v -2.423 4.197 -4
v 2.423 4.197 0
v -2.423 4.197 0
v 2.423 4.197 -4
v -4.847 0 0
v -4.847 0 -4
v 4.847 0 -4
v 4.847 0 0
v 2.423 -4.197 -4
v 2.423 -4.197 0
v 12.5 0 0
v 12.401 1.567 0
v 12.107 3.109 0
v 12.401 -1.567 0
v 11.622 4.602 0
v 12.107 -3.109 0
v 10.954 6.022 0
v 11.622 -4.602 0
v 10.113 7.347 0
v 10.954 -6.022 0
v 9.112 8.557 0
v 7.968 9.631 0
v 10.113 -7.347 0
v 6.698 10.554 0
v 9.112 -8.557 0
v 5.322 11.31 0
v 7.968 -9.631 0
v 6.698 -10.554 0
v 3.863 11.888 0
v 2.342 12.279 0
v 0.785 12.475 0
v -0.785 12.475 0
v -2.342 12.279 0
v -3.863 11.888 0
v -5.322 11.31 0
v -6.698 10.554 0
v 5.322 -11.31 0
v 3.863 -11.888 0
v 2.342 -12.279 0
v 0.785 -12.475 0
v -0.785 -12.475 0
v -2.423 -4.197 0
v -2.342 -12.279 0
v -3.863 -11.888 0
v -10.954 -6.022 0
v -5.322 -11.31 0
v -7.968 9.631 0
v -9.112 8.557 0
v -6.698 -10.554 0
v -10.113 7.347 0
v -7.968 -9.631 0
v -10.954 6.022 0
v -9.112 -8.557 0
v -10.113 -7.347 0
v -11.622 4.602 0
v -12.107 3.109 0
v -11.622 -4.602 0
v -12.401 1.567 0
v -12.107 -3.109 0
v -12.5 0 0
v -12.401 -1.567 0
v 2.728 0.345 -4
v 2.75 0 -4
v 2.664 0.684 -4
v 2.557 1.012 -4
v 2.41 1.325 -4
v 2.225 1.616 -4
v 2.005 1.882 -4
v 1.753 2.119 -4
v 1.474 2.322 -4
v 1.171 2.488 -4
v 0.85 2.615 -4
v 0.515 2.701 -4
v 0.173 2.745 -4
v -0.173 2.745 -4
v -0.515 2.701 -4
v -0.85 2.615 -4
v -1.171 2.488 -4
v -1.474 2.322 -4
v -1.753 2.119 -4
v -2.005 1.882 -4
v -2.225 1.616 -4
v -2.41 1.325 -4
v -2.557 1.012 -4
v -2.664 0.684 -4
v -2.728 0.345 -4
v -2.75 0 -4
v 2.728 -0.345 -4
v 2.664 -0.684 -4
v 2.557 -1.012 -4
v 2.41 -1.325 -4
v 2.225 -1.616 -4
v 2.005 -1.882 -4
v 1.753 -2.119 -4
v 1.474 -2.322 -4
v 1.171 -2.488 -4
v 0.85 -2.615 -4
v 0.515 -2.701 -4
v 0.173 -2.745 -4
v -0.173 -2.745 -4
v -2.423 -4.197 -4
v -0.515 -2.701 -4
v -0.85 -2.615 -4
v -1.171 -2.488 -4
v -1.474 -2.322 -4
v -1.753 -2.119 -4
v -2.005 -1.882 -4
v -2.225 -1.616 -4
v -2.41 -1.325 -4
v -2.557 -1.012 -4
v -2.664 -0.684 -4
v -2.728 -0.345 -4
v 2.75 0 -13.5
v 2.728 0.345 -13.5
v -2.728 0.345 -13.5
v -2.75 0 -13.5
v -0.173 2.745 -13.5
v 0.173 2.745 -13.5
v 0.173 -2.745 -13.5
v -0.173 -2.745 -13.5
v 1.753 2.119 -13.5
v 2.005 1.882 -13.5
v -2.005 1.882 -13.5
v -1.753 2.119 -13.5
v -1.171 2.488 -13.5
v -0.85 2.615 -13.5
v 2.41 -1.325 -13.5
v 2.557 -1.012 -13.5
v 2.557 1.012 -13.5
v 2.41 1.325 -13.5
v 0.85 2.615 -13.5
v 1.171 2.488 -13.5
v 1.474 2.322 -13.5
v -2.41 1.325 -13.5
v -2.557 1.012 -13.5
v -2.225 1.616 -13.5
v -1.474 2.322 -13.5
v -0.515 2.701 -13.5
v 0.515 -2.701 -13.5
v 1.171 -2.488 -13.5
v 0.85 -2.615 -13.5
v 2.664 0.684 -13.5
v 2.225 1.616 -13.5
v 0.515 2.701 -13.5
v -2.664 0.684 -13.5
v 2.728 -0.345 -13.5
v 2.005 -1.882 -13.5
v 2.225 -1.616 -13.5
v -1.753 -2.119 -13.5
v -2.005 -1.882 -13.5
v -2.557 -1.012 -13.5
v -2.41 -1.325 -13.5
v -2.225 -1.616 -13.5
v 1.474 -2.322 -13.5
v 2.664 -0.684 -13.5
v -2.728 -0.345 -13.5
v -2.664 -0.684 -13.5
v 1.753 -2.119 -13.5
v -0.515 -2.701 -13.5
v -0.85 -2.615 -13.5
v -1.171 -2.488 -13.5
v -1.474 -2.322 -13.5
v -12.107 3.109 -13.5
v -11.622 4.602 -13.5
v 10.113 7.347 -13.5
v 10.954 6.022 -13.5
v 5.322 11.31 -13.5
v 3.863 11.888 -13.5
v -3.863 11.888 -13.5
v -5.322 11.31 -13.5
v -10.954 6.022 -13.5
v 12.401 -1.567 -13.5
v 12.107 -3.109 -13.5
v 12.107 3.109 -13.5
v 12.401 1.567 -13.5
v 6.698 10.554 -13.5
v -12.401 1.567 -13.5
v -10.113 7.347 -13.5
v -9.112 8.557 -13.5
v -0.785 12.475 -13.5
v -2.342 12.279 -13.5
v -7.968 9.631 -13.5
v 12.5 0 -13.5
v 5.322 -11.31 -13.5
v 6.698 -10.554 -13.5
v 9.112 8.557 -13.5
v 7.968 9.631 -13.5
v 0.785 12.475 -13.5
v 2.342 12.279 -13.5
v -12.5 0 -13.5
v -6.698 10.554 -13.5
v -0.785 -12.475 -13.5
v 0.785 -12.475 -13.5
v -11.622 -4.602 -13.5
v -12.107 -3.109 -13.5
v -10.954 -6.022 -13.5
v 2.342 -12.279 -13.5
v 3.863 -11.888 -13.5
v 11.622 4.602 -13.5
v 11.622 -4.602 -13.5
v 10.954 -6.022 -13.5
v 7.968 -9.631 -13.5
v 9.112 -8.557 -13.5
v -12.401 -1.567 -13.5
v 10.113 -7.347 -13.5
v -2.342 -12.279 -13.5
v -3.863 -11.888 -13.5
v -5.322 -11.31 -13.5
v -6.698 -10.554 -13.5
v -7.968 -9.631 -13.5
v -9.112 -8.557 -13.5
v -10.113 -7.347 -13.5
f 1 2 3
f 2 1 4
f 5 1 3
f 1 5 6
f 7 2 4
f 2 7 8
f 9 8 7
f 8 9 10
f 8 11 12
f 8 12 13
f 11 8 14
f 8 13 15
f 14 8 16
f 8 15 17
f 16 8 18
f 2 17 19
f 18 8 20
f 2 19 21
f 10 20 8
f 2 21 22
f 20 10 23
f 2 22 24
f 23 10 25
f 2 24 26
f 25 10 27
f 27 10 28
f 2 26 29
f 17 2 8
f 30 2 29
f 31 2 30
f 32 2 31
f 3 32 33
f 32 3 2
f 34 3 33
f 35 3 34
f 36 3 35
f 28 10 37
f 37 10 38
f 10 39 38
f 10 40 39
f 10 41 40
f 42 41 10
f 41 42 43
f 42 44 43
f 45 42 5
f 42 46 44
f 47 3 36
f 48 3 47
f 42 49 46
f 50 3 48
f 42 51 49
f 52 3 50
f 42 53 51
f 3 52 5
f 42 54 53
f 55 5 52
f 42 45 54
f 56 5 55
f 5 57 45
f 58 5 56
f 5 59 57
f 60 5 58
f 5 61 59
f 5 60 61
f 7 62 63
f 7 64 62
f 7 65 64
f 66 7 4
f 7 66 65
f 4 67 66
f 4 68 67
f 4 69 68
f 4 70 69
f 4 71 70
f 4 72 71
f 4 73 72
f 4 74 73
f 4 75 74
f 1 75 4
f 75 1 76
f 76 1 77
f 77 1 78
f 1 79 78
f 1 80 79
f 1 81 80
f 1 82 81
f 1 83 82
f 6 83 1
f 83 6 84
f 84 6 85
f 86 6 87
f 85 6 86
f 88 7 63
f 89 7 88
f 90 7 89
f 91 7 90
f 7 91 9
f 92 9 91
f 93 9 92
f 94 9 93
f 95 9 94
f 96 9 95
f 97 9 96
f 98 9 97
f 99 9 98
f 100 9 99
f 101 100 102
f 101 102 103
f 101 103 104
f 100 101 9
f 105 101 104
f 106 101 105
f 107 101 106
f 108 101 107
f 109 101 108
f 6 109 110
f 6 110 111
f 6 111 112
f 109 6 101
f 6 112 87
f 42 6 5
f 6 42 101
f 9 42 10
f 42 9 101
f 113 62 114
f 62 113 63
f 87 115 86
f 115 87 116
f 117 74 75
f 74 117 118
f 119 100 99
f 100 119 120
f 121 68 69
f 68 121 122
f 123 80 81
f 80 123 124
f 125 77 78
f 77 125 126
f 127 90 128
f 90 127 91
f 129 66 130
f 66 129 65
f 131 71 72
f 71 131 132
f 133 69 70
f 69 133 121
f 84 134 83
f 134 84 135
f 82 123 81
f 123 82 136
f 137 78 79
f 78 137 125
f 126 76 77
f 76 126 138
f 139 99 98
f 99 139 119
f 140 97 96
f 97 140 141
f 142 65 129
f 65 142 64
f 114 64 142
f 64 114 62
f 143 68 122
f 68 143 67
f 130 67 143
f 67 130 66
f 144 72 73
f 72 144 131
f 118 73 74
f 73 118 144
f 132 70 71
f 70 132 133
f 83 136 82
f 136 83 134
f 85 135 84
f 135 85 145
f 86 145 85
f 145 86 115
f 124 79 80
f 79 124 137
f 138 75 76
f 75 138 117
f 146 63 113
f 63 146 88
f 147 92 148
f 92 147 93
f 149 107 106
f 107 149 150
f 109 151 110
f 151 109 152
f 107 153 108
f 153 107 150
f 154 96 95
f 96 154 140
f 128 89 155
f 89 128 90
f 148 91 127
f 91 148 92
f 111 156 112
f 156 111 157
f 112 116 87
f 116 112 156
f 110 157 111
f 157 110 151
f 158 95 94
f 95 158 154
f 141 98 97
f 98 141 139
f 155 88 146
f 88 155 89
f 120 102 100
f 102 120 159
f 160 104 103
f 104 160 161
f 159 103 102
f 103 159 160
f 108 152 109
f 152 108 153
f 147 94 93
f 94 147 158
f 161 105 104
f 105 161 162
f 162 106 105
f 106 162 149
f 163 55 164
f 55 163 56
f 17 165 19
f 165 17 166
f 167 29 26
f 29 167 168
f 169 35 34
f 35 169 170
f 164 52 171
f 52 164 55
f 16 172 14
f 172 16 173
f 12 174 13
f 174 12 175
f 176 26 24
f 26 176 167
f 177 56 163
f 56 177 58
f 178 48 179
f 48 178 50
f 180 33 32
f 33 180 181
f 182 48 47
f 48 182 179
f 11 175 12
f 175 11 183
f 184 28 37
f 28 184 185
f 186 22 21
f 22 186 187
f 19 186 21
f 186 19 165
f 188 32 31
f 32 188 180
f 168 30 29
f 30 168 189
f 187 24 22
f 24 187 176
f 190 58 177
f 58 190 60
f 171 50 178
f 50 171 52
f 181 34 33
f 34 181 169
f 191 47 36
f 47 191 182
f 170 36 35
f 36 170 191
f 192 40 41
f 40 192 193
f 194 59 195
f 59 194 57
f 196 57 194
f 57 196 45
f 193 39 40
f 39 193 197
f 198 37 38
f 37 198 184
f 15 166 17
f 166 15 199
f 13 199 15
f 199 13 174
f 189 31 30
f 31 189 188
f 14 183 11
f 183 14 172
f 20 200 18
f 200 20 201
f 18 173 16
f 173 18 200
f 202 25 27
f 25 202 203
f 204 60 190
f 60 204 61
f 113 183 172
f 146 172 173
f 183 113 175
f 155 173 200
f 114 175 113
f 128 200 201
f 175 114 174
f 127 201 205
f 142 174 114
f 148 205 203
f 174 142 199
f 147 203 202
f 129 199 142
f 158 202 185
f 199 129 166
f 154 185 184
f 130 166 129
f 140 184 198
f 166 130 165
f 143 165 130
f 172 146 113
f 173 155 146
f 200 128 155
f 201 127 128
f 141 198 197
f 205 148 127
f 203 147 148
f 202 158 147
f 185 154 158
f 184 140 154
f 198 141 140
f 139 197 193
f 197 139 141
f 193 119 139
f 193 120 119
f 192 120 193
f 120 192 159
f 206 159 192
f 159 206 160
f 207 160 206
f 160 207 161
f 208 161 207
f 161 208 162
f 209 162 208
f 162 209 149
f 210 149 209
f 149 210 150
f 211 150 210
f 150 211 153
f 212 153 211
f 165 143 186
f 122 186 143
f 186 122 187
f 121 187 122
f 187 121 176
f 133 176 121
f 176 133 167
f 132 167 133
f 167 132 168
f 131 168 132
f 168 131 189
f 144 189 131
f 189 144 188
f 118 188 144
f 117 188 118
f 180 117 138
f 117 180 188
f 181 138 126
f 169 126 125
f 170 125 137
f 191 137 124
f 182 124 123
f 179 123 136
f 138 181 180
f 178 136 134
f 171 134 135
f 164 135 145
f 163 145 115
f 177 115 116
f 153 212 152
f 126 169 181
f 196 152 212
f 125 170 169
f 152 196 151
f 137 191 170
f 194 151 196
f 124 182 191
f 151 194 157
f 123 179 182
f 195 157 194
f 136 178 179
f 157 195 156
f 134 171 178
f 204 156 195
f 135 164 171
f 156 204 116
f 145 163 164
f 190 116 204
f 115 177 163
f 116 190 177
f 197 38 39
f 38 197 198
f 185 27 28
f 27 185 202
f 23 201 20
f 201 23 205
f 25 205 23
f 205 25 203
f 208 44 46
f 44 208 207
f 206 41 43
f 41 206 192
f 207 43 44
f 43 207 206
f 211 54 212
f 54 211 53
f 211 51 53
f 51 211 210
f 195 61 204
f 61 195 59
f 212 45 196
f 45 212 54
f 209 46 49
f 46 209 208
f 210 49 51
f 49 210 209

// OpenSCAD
$fn = 50;

difference() {
	union() {
		translate(v = [0, 0, -13.5]) {
			cylinder(h = 13.5, r = 12.5);
		}
	}
	union() {
		translate(v = [0, 0, 0]) {
			rotate(a = [0, 0, 0]) {
				difference() {
					union() {
						translate(v = [0, 0, -4]) {
							linear_extrude(height = 4) {
								polygon(points = [[4.8468, 0.0], [2.4234000000000004, 4.197451927062417], [-2.423399999999999, 4.197451927062417], [-4.8468, 5.935618106107392e-16], [-2.423400000000002, -4.197451927062416], [2.423399999999997, -4.197451927062419]]);
							}
						}
					}
					union();
				}
			}
		}
		#translate(v = [0, 0, -100.0]) {
			cylinder(h = 200, r = 2.75);
		}
	}
}
